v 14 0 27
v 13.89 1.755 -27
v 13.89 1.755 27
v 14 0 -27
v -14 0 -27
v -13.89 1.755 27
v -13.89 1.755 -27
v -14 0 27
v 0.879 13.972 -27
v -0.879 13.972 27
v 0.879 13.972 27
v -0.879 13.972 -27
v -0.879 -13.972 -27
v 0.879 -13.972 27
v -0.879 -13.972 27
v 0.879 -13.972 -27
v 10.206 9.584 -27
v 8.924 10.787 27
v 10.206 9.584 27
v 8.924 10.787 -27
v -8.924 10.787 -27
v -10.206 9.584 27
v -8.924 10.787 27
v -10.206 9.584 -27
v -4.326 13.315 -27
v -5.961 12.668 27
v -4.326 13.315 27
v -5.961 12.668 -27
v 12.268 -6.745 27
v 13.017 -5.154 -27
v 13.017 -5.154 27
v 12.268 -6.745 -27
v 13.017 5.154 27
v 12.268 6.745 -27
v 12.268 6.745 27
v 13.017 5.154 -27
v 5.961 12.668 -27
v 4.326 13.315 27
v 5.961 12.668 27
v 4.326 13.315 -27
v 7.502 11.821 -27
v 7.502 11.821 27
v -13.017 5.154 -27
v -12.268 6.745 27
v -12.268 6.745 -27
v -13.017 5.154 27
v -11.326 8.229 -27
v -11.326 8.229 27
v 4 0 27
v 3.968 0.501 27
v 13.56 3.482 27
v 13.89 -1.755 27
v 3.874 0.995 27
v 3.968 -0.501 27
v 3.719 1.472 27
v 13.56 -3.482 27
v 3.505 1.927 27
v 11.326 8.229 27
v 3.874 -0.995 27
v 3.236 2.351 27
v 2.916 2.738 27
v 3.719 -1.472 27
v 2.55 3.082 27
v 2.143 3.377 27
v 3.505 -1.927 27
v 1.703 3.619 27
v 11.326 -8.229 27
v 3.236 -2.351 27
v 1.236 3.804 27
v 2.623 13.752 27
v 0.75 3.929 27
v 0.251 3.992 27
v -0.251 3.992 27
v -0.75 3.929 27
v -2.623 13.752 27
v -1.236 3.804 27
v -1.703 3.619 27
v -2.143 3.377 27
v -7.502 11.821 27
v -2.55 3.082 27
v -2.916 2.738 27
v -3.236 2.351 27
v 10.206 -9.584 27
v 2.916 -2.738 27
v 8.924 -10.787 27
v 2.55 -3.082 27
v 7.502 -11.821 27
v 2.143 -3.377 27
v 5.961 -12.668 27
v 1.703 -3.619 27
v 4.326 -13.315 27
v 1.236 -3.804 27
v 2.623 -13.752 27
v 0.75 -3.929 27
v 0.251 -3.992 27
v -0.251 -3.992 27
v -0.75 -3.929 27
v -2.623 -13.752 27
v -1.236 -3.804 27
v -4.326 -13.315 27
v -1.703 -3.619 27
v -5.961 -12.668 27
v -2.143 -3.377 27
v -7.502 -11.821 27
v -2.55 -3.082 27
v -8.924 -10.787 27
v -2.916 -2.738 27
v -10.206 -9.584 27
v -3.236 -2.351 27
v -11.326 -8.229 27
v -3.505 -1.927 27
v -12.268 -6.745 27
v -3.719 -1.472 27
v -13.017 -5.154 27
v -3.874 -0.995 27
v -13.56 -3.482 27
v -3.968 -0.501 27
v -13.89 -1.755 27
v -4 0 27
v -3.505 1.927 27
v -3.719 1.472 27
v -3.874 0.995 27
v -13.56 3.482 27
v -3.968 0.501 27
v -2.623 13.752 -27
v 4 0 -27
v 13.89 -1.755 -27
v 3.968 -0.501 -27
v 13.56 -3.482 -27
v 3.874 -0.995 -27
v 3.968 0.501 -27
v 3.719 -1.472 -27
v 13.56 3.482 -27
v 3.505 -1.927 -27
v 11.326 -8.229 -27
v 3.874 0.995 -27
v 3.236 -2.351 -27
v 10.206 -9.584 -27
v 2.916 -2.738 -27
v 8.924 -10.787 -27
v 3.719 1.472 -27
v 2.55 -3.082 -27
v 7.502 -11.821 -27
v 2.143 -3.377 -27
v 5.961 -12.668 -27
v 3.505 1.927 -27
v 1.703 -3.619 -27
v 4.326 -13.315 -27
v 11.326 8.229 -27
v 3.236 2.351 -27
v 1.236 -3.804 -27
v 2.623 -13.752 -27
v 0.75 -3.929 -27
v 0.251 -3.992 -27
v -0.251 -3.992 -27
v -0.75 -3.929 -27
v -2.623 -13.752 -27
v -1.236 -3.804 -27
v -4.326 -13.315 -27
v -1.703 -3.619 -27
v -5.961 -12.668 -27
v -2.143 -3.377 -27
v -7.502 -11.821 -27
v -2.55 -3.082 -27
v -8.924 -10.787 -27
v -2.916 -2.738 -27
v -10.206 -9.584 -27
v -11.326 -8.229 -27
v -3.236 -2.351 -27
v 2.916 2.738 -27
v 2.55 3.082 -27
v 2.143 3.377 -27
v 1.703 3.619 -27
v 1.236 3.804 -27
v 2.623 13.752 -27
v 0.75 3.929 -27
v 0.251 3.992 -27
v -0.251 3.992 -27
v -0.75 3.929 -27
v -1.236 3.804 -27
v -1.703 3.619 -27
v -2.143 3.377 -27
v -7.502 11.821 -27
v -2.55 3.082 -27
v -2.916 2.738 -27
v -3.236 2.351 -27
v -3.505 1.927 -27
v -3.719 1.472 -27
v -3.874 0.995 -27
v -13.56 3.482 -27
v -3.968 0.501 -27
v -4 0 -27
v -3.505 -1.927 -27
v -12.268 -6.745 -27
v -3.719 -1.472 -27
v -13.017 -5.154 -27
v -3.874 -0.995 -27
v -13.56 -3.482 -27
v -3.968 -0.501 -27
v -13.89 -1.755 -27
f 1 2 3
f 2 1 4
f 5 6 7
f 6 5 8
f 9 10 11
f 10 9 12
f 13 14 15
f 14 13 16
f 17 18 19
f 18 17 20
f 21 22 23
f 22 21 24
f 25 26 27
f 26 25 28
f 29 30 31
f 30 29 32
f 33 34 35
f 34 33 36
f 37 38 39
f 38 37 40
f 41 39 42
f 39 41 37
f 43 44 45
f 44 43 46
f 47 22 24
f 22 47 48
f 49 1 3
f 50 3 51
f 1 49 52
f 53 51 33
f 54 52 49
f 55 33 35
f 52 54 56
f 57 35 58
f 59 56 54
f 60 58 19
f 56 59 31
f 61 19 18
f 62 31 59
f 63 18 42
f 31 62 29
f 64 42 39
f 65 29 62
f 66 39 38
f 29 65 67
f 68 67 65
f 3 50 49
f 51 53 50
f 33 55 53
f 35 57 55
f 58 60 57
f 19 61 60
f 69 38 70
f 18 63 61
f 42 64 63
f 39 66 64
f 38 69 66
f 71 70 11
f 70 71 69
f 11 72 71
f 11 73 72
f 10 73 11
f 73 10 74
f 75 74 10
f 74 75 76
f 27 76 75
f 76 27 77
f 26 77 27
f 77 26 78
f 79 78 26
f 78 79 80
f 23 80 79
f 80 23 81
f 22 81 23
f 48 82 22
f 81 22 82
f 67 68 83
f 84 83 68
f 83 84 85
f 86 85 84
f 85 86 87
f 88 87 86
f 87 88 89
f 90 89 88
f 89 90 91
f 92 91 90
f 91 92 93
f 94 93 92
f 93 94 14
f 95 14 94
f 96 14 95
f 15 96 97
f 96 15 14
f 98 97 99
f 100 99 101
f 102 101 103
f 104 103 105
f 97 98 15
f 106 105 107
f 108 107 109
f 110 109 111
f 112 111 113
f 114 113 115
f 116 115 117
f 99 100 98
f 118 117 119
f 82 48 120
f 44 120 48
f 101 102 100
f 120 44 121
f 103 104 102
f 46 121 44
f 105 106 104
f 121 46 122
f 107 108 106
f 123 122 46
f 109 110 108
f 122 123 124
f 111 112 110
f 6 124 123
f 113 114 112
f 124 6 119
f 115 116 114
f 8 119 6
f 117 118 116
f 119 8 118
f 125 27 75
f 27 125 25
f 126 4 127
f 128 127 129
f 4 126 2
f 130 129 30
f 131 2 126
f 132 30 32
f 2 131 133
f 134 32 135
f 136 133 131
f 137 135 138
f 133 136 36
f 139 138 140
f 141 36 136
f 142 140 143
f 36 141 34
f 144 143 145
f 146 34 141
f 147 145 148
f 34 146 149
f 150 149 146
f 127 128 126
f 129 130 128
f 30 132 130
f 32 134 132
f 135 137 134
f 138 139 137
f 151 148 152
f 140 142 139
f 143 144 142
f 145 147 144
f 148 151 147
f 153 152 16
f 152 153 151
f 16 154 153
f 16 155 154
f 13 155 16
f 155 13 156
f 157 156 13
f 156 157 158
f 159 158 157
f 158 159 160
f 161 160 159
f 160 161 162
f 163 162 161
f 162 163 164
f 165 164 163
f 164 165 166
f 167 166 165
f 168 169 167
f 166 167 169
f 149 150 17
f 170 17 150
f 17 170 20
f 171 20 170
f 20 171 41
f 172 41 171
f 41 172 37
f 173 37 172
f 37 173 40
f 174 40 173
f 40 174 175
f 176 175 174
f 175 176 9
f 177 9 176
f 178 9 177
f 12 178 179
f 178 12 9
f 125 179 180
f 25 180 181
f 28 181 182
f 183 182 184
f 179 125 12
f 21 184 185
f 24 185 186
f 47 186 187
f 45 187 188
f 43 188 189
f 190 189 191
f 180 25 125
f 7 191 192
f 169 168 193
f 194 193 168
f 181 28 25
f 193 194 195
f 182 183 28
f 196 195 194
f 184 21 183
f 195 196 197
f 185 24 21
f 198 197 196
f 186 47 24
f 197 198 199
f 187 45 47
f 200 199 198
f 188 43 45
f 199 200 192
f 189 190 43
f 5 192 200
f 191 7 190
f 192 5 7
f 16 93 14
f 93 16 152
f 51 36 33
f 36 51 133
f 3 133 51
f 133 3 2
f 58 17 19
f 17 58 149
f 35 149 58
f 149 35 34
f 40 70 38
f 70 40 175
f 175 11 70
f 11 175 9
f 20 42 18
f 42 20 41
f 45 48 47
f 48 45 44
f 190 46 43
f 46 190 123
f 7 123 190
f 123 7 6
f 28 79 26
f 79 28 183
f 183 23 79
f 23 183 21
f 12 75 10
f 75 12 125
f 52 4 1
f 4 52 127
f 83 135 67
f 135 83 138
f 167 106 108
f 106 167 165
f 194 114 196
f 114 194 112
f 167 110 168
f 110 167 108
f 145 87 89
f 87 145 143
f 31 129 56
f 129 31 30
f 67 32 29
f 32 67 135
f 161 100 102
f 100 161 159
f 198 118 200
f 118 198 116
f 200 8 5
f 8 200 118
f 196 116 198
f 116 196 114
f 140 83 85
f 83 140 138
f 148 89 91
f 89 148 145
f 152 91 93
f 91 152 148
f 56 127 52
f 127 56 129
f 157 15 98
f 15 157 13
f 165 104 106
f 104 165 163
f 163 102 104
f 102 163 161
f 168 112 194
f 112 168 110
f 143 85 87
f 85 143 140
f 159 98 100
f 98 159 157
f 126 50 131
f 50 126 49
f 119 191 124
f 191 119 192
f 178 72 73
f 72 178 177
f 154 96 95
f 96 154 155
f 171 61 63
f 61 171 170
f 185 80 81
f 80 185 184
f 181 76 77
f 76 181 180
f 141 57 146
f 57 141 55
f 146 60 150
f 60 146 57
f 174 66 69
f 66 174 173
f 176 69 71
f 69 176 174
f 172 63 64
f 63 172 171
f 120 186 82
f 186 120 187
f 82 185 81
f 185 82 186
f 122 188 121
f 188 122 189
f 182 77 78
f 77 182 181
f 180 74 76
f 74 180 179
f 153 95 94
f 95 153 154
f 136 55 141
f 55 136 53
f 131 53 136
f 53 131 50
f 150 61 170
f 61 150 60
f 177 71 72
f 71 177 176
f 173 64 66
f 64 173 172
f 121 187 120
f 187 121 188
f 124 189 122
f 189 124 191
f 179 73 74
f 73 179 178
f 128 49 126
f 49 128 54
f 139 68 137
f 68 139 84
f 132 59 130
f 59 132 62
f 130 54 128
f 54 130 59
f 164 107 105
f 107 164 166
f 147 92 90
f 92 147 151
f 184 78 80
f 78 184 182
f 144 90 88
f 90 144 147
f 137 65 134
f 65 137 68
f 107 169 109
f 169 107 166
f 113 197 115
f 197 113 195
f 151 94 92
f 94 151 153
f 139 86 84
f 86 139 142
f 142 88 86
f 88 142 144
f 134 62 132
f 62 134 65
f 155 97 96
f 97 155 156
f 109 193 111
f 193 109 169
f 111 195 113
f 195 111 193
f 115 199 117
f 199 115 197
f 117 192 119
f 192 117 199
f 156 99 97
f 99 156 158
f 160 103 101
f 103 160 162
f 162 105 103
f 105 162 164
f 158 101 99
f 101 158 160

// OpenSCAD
$fn = 50;


difference() {
	union() {
		translate(v = [0, 0, -27.0000000000]) {
			cylinder(h = 54, r = 14.0000000000);
		}
	}
	union() {
		translate(v = [0, 0, -100.0000000000]) {
			cylinder(h = 200, r = 4.0000000000);
		}
	}
}
